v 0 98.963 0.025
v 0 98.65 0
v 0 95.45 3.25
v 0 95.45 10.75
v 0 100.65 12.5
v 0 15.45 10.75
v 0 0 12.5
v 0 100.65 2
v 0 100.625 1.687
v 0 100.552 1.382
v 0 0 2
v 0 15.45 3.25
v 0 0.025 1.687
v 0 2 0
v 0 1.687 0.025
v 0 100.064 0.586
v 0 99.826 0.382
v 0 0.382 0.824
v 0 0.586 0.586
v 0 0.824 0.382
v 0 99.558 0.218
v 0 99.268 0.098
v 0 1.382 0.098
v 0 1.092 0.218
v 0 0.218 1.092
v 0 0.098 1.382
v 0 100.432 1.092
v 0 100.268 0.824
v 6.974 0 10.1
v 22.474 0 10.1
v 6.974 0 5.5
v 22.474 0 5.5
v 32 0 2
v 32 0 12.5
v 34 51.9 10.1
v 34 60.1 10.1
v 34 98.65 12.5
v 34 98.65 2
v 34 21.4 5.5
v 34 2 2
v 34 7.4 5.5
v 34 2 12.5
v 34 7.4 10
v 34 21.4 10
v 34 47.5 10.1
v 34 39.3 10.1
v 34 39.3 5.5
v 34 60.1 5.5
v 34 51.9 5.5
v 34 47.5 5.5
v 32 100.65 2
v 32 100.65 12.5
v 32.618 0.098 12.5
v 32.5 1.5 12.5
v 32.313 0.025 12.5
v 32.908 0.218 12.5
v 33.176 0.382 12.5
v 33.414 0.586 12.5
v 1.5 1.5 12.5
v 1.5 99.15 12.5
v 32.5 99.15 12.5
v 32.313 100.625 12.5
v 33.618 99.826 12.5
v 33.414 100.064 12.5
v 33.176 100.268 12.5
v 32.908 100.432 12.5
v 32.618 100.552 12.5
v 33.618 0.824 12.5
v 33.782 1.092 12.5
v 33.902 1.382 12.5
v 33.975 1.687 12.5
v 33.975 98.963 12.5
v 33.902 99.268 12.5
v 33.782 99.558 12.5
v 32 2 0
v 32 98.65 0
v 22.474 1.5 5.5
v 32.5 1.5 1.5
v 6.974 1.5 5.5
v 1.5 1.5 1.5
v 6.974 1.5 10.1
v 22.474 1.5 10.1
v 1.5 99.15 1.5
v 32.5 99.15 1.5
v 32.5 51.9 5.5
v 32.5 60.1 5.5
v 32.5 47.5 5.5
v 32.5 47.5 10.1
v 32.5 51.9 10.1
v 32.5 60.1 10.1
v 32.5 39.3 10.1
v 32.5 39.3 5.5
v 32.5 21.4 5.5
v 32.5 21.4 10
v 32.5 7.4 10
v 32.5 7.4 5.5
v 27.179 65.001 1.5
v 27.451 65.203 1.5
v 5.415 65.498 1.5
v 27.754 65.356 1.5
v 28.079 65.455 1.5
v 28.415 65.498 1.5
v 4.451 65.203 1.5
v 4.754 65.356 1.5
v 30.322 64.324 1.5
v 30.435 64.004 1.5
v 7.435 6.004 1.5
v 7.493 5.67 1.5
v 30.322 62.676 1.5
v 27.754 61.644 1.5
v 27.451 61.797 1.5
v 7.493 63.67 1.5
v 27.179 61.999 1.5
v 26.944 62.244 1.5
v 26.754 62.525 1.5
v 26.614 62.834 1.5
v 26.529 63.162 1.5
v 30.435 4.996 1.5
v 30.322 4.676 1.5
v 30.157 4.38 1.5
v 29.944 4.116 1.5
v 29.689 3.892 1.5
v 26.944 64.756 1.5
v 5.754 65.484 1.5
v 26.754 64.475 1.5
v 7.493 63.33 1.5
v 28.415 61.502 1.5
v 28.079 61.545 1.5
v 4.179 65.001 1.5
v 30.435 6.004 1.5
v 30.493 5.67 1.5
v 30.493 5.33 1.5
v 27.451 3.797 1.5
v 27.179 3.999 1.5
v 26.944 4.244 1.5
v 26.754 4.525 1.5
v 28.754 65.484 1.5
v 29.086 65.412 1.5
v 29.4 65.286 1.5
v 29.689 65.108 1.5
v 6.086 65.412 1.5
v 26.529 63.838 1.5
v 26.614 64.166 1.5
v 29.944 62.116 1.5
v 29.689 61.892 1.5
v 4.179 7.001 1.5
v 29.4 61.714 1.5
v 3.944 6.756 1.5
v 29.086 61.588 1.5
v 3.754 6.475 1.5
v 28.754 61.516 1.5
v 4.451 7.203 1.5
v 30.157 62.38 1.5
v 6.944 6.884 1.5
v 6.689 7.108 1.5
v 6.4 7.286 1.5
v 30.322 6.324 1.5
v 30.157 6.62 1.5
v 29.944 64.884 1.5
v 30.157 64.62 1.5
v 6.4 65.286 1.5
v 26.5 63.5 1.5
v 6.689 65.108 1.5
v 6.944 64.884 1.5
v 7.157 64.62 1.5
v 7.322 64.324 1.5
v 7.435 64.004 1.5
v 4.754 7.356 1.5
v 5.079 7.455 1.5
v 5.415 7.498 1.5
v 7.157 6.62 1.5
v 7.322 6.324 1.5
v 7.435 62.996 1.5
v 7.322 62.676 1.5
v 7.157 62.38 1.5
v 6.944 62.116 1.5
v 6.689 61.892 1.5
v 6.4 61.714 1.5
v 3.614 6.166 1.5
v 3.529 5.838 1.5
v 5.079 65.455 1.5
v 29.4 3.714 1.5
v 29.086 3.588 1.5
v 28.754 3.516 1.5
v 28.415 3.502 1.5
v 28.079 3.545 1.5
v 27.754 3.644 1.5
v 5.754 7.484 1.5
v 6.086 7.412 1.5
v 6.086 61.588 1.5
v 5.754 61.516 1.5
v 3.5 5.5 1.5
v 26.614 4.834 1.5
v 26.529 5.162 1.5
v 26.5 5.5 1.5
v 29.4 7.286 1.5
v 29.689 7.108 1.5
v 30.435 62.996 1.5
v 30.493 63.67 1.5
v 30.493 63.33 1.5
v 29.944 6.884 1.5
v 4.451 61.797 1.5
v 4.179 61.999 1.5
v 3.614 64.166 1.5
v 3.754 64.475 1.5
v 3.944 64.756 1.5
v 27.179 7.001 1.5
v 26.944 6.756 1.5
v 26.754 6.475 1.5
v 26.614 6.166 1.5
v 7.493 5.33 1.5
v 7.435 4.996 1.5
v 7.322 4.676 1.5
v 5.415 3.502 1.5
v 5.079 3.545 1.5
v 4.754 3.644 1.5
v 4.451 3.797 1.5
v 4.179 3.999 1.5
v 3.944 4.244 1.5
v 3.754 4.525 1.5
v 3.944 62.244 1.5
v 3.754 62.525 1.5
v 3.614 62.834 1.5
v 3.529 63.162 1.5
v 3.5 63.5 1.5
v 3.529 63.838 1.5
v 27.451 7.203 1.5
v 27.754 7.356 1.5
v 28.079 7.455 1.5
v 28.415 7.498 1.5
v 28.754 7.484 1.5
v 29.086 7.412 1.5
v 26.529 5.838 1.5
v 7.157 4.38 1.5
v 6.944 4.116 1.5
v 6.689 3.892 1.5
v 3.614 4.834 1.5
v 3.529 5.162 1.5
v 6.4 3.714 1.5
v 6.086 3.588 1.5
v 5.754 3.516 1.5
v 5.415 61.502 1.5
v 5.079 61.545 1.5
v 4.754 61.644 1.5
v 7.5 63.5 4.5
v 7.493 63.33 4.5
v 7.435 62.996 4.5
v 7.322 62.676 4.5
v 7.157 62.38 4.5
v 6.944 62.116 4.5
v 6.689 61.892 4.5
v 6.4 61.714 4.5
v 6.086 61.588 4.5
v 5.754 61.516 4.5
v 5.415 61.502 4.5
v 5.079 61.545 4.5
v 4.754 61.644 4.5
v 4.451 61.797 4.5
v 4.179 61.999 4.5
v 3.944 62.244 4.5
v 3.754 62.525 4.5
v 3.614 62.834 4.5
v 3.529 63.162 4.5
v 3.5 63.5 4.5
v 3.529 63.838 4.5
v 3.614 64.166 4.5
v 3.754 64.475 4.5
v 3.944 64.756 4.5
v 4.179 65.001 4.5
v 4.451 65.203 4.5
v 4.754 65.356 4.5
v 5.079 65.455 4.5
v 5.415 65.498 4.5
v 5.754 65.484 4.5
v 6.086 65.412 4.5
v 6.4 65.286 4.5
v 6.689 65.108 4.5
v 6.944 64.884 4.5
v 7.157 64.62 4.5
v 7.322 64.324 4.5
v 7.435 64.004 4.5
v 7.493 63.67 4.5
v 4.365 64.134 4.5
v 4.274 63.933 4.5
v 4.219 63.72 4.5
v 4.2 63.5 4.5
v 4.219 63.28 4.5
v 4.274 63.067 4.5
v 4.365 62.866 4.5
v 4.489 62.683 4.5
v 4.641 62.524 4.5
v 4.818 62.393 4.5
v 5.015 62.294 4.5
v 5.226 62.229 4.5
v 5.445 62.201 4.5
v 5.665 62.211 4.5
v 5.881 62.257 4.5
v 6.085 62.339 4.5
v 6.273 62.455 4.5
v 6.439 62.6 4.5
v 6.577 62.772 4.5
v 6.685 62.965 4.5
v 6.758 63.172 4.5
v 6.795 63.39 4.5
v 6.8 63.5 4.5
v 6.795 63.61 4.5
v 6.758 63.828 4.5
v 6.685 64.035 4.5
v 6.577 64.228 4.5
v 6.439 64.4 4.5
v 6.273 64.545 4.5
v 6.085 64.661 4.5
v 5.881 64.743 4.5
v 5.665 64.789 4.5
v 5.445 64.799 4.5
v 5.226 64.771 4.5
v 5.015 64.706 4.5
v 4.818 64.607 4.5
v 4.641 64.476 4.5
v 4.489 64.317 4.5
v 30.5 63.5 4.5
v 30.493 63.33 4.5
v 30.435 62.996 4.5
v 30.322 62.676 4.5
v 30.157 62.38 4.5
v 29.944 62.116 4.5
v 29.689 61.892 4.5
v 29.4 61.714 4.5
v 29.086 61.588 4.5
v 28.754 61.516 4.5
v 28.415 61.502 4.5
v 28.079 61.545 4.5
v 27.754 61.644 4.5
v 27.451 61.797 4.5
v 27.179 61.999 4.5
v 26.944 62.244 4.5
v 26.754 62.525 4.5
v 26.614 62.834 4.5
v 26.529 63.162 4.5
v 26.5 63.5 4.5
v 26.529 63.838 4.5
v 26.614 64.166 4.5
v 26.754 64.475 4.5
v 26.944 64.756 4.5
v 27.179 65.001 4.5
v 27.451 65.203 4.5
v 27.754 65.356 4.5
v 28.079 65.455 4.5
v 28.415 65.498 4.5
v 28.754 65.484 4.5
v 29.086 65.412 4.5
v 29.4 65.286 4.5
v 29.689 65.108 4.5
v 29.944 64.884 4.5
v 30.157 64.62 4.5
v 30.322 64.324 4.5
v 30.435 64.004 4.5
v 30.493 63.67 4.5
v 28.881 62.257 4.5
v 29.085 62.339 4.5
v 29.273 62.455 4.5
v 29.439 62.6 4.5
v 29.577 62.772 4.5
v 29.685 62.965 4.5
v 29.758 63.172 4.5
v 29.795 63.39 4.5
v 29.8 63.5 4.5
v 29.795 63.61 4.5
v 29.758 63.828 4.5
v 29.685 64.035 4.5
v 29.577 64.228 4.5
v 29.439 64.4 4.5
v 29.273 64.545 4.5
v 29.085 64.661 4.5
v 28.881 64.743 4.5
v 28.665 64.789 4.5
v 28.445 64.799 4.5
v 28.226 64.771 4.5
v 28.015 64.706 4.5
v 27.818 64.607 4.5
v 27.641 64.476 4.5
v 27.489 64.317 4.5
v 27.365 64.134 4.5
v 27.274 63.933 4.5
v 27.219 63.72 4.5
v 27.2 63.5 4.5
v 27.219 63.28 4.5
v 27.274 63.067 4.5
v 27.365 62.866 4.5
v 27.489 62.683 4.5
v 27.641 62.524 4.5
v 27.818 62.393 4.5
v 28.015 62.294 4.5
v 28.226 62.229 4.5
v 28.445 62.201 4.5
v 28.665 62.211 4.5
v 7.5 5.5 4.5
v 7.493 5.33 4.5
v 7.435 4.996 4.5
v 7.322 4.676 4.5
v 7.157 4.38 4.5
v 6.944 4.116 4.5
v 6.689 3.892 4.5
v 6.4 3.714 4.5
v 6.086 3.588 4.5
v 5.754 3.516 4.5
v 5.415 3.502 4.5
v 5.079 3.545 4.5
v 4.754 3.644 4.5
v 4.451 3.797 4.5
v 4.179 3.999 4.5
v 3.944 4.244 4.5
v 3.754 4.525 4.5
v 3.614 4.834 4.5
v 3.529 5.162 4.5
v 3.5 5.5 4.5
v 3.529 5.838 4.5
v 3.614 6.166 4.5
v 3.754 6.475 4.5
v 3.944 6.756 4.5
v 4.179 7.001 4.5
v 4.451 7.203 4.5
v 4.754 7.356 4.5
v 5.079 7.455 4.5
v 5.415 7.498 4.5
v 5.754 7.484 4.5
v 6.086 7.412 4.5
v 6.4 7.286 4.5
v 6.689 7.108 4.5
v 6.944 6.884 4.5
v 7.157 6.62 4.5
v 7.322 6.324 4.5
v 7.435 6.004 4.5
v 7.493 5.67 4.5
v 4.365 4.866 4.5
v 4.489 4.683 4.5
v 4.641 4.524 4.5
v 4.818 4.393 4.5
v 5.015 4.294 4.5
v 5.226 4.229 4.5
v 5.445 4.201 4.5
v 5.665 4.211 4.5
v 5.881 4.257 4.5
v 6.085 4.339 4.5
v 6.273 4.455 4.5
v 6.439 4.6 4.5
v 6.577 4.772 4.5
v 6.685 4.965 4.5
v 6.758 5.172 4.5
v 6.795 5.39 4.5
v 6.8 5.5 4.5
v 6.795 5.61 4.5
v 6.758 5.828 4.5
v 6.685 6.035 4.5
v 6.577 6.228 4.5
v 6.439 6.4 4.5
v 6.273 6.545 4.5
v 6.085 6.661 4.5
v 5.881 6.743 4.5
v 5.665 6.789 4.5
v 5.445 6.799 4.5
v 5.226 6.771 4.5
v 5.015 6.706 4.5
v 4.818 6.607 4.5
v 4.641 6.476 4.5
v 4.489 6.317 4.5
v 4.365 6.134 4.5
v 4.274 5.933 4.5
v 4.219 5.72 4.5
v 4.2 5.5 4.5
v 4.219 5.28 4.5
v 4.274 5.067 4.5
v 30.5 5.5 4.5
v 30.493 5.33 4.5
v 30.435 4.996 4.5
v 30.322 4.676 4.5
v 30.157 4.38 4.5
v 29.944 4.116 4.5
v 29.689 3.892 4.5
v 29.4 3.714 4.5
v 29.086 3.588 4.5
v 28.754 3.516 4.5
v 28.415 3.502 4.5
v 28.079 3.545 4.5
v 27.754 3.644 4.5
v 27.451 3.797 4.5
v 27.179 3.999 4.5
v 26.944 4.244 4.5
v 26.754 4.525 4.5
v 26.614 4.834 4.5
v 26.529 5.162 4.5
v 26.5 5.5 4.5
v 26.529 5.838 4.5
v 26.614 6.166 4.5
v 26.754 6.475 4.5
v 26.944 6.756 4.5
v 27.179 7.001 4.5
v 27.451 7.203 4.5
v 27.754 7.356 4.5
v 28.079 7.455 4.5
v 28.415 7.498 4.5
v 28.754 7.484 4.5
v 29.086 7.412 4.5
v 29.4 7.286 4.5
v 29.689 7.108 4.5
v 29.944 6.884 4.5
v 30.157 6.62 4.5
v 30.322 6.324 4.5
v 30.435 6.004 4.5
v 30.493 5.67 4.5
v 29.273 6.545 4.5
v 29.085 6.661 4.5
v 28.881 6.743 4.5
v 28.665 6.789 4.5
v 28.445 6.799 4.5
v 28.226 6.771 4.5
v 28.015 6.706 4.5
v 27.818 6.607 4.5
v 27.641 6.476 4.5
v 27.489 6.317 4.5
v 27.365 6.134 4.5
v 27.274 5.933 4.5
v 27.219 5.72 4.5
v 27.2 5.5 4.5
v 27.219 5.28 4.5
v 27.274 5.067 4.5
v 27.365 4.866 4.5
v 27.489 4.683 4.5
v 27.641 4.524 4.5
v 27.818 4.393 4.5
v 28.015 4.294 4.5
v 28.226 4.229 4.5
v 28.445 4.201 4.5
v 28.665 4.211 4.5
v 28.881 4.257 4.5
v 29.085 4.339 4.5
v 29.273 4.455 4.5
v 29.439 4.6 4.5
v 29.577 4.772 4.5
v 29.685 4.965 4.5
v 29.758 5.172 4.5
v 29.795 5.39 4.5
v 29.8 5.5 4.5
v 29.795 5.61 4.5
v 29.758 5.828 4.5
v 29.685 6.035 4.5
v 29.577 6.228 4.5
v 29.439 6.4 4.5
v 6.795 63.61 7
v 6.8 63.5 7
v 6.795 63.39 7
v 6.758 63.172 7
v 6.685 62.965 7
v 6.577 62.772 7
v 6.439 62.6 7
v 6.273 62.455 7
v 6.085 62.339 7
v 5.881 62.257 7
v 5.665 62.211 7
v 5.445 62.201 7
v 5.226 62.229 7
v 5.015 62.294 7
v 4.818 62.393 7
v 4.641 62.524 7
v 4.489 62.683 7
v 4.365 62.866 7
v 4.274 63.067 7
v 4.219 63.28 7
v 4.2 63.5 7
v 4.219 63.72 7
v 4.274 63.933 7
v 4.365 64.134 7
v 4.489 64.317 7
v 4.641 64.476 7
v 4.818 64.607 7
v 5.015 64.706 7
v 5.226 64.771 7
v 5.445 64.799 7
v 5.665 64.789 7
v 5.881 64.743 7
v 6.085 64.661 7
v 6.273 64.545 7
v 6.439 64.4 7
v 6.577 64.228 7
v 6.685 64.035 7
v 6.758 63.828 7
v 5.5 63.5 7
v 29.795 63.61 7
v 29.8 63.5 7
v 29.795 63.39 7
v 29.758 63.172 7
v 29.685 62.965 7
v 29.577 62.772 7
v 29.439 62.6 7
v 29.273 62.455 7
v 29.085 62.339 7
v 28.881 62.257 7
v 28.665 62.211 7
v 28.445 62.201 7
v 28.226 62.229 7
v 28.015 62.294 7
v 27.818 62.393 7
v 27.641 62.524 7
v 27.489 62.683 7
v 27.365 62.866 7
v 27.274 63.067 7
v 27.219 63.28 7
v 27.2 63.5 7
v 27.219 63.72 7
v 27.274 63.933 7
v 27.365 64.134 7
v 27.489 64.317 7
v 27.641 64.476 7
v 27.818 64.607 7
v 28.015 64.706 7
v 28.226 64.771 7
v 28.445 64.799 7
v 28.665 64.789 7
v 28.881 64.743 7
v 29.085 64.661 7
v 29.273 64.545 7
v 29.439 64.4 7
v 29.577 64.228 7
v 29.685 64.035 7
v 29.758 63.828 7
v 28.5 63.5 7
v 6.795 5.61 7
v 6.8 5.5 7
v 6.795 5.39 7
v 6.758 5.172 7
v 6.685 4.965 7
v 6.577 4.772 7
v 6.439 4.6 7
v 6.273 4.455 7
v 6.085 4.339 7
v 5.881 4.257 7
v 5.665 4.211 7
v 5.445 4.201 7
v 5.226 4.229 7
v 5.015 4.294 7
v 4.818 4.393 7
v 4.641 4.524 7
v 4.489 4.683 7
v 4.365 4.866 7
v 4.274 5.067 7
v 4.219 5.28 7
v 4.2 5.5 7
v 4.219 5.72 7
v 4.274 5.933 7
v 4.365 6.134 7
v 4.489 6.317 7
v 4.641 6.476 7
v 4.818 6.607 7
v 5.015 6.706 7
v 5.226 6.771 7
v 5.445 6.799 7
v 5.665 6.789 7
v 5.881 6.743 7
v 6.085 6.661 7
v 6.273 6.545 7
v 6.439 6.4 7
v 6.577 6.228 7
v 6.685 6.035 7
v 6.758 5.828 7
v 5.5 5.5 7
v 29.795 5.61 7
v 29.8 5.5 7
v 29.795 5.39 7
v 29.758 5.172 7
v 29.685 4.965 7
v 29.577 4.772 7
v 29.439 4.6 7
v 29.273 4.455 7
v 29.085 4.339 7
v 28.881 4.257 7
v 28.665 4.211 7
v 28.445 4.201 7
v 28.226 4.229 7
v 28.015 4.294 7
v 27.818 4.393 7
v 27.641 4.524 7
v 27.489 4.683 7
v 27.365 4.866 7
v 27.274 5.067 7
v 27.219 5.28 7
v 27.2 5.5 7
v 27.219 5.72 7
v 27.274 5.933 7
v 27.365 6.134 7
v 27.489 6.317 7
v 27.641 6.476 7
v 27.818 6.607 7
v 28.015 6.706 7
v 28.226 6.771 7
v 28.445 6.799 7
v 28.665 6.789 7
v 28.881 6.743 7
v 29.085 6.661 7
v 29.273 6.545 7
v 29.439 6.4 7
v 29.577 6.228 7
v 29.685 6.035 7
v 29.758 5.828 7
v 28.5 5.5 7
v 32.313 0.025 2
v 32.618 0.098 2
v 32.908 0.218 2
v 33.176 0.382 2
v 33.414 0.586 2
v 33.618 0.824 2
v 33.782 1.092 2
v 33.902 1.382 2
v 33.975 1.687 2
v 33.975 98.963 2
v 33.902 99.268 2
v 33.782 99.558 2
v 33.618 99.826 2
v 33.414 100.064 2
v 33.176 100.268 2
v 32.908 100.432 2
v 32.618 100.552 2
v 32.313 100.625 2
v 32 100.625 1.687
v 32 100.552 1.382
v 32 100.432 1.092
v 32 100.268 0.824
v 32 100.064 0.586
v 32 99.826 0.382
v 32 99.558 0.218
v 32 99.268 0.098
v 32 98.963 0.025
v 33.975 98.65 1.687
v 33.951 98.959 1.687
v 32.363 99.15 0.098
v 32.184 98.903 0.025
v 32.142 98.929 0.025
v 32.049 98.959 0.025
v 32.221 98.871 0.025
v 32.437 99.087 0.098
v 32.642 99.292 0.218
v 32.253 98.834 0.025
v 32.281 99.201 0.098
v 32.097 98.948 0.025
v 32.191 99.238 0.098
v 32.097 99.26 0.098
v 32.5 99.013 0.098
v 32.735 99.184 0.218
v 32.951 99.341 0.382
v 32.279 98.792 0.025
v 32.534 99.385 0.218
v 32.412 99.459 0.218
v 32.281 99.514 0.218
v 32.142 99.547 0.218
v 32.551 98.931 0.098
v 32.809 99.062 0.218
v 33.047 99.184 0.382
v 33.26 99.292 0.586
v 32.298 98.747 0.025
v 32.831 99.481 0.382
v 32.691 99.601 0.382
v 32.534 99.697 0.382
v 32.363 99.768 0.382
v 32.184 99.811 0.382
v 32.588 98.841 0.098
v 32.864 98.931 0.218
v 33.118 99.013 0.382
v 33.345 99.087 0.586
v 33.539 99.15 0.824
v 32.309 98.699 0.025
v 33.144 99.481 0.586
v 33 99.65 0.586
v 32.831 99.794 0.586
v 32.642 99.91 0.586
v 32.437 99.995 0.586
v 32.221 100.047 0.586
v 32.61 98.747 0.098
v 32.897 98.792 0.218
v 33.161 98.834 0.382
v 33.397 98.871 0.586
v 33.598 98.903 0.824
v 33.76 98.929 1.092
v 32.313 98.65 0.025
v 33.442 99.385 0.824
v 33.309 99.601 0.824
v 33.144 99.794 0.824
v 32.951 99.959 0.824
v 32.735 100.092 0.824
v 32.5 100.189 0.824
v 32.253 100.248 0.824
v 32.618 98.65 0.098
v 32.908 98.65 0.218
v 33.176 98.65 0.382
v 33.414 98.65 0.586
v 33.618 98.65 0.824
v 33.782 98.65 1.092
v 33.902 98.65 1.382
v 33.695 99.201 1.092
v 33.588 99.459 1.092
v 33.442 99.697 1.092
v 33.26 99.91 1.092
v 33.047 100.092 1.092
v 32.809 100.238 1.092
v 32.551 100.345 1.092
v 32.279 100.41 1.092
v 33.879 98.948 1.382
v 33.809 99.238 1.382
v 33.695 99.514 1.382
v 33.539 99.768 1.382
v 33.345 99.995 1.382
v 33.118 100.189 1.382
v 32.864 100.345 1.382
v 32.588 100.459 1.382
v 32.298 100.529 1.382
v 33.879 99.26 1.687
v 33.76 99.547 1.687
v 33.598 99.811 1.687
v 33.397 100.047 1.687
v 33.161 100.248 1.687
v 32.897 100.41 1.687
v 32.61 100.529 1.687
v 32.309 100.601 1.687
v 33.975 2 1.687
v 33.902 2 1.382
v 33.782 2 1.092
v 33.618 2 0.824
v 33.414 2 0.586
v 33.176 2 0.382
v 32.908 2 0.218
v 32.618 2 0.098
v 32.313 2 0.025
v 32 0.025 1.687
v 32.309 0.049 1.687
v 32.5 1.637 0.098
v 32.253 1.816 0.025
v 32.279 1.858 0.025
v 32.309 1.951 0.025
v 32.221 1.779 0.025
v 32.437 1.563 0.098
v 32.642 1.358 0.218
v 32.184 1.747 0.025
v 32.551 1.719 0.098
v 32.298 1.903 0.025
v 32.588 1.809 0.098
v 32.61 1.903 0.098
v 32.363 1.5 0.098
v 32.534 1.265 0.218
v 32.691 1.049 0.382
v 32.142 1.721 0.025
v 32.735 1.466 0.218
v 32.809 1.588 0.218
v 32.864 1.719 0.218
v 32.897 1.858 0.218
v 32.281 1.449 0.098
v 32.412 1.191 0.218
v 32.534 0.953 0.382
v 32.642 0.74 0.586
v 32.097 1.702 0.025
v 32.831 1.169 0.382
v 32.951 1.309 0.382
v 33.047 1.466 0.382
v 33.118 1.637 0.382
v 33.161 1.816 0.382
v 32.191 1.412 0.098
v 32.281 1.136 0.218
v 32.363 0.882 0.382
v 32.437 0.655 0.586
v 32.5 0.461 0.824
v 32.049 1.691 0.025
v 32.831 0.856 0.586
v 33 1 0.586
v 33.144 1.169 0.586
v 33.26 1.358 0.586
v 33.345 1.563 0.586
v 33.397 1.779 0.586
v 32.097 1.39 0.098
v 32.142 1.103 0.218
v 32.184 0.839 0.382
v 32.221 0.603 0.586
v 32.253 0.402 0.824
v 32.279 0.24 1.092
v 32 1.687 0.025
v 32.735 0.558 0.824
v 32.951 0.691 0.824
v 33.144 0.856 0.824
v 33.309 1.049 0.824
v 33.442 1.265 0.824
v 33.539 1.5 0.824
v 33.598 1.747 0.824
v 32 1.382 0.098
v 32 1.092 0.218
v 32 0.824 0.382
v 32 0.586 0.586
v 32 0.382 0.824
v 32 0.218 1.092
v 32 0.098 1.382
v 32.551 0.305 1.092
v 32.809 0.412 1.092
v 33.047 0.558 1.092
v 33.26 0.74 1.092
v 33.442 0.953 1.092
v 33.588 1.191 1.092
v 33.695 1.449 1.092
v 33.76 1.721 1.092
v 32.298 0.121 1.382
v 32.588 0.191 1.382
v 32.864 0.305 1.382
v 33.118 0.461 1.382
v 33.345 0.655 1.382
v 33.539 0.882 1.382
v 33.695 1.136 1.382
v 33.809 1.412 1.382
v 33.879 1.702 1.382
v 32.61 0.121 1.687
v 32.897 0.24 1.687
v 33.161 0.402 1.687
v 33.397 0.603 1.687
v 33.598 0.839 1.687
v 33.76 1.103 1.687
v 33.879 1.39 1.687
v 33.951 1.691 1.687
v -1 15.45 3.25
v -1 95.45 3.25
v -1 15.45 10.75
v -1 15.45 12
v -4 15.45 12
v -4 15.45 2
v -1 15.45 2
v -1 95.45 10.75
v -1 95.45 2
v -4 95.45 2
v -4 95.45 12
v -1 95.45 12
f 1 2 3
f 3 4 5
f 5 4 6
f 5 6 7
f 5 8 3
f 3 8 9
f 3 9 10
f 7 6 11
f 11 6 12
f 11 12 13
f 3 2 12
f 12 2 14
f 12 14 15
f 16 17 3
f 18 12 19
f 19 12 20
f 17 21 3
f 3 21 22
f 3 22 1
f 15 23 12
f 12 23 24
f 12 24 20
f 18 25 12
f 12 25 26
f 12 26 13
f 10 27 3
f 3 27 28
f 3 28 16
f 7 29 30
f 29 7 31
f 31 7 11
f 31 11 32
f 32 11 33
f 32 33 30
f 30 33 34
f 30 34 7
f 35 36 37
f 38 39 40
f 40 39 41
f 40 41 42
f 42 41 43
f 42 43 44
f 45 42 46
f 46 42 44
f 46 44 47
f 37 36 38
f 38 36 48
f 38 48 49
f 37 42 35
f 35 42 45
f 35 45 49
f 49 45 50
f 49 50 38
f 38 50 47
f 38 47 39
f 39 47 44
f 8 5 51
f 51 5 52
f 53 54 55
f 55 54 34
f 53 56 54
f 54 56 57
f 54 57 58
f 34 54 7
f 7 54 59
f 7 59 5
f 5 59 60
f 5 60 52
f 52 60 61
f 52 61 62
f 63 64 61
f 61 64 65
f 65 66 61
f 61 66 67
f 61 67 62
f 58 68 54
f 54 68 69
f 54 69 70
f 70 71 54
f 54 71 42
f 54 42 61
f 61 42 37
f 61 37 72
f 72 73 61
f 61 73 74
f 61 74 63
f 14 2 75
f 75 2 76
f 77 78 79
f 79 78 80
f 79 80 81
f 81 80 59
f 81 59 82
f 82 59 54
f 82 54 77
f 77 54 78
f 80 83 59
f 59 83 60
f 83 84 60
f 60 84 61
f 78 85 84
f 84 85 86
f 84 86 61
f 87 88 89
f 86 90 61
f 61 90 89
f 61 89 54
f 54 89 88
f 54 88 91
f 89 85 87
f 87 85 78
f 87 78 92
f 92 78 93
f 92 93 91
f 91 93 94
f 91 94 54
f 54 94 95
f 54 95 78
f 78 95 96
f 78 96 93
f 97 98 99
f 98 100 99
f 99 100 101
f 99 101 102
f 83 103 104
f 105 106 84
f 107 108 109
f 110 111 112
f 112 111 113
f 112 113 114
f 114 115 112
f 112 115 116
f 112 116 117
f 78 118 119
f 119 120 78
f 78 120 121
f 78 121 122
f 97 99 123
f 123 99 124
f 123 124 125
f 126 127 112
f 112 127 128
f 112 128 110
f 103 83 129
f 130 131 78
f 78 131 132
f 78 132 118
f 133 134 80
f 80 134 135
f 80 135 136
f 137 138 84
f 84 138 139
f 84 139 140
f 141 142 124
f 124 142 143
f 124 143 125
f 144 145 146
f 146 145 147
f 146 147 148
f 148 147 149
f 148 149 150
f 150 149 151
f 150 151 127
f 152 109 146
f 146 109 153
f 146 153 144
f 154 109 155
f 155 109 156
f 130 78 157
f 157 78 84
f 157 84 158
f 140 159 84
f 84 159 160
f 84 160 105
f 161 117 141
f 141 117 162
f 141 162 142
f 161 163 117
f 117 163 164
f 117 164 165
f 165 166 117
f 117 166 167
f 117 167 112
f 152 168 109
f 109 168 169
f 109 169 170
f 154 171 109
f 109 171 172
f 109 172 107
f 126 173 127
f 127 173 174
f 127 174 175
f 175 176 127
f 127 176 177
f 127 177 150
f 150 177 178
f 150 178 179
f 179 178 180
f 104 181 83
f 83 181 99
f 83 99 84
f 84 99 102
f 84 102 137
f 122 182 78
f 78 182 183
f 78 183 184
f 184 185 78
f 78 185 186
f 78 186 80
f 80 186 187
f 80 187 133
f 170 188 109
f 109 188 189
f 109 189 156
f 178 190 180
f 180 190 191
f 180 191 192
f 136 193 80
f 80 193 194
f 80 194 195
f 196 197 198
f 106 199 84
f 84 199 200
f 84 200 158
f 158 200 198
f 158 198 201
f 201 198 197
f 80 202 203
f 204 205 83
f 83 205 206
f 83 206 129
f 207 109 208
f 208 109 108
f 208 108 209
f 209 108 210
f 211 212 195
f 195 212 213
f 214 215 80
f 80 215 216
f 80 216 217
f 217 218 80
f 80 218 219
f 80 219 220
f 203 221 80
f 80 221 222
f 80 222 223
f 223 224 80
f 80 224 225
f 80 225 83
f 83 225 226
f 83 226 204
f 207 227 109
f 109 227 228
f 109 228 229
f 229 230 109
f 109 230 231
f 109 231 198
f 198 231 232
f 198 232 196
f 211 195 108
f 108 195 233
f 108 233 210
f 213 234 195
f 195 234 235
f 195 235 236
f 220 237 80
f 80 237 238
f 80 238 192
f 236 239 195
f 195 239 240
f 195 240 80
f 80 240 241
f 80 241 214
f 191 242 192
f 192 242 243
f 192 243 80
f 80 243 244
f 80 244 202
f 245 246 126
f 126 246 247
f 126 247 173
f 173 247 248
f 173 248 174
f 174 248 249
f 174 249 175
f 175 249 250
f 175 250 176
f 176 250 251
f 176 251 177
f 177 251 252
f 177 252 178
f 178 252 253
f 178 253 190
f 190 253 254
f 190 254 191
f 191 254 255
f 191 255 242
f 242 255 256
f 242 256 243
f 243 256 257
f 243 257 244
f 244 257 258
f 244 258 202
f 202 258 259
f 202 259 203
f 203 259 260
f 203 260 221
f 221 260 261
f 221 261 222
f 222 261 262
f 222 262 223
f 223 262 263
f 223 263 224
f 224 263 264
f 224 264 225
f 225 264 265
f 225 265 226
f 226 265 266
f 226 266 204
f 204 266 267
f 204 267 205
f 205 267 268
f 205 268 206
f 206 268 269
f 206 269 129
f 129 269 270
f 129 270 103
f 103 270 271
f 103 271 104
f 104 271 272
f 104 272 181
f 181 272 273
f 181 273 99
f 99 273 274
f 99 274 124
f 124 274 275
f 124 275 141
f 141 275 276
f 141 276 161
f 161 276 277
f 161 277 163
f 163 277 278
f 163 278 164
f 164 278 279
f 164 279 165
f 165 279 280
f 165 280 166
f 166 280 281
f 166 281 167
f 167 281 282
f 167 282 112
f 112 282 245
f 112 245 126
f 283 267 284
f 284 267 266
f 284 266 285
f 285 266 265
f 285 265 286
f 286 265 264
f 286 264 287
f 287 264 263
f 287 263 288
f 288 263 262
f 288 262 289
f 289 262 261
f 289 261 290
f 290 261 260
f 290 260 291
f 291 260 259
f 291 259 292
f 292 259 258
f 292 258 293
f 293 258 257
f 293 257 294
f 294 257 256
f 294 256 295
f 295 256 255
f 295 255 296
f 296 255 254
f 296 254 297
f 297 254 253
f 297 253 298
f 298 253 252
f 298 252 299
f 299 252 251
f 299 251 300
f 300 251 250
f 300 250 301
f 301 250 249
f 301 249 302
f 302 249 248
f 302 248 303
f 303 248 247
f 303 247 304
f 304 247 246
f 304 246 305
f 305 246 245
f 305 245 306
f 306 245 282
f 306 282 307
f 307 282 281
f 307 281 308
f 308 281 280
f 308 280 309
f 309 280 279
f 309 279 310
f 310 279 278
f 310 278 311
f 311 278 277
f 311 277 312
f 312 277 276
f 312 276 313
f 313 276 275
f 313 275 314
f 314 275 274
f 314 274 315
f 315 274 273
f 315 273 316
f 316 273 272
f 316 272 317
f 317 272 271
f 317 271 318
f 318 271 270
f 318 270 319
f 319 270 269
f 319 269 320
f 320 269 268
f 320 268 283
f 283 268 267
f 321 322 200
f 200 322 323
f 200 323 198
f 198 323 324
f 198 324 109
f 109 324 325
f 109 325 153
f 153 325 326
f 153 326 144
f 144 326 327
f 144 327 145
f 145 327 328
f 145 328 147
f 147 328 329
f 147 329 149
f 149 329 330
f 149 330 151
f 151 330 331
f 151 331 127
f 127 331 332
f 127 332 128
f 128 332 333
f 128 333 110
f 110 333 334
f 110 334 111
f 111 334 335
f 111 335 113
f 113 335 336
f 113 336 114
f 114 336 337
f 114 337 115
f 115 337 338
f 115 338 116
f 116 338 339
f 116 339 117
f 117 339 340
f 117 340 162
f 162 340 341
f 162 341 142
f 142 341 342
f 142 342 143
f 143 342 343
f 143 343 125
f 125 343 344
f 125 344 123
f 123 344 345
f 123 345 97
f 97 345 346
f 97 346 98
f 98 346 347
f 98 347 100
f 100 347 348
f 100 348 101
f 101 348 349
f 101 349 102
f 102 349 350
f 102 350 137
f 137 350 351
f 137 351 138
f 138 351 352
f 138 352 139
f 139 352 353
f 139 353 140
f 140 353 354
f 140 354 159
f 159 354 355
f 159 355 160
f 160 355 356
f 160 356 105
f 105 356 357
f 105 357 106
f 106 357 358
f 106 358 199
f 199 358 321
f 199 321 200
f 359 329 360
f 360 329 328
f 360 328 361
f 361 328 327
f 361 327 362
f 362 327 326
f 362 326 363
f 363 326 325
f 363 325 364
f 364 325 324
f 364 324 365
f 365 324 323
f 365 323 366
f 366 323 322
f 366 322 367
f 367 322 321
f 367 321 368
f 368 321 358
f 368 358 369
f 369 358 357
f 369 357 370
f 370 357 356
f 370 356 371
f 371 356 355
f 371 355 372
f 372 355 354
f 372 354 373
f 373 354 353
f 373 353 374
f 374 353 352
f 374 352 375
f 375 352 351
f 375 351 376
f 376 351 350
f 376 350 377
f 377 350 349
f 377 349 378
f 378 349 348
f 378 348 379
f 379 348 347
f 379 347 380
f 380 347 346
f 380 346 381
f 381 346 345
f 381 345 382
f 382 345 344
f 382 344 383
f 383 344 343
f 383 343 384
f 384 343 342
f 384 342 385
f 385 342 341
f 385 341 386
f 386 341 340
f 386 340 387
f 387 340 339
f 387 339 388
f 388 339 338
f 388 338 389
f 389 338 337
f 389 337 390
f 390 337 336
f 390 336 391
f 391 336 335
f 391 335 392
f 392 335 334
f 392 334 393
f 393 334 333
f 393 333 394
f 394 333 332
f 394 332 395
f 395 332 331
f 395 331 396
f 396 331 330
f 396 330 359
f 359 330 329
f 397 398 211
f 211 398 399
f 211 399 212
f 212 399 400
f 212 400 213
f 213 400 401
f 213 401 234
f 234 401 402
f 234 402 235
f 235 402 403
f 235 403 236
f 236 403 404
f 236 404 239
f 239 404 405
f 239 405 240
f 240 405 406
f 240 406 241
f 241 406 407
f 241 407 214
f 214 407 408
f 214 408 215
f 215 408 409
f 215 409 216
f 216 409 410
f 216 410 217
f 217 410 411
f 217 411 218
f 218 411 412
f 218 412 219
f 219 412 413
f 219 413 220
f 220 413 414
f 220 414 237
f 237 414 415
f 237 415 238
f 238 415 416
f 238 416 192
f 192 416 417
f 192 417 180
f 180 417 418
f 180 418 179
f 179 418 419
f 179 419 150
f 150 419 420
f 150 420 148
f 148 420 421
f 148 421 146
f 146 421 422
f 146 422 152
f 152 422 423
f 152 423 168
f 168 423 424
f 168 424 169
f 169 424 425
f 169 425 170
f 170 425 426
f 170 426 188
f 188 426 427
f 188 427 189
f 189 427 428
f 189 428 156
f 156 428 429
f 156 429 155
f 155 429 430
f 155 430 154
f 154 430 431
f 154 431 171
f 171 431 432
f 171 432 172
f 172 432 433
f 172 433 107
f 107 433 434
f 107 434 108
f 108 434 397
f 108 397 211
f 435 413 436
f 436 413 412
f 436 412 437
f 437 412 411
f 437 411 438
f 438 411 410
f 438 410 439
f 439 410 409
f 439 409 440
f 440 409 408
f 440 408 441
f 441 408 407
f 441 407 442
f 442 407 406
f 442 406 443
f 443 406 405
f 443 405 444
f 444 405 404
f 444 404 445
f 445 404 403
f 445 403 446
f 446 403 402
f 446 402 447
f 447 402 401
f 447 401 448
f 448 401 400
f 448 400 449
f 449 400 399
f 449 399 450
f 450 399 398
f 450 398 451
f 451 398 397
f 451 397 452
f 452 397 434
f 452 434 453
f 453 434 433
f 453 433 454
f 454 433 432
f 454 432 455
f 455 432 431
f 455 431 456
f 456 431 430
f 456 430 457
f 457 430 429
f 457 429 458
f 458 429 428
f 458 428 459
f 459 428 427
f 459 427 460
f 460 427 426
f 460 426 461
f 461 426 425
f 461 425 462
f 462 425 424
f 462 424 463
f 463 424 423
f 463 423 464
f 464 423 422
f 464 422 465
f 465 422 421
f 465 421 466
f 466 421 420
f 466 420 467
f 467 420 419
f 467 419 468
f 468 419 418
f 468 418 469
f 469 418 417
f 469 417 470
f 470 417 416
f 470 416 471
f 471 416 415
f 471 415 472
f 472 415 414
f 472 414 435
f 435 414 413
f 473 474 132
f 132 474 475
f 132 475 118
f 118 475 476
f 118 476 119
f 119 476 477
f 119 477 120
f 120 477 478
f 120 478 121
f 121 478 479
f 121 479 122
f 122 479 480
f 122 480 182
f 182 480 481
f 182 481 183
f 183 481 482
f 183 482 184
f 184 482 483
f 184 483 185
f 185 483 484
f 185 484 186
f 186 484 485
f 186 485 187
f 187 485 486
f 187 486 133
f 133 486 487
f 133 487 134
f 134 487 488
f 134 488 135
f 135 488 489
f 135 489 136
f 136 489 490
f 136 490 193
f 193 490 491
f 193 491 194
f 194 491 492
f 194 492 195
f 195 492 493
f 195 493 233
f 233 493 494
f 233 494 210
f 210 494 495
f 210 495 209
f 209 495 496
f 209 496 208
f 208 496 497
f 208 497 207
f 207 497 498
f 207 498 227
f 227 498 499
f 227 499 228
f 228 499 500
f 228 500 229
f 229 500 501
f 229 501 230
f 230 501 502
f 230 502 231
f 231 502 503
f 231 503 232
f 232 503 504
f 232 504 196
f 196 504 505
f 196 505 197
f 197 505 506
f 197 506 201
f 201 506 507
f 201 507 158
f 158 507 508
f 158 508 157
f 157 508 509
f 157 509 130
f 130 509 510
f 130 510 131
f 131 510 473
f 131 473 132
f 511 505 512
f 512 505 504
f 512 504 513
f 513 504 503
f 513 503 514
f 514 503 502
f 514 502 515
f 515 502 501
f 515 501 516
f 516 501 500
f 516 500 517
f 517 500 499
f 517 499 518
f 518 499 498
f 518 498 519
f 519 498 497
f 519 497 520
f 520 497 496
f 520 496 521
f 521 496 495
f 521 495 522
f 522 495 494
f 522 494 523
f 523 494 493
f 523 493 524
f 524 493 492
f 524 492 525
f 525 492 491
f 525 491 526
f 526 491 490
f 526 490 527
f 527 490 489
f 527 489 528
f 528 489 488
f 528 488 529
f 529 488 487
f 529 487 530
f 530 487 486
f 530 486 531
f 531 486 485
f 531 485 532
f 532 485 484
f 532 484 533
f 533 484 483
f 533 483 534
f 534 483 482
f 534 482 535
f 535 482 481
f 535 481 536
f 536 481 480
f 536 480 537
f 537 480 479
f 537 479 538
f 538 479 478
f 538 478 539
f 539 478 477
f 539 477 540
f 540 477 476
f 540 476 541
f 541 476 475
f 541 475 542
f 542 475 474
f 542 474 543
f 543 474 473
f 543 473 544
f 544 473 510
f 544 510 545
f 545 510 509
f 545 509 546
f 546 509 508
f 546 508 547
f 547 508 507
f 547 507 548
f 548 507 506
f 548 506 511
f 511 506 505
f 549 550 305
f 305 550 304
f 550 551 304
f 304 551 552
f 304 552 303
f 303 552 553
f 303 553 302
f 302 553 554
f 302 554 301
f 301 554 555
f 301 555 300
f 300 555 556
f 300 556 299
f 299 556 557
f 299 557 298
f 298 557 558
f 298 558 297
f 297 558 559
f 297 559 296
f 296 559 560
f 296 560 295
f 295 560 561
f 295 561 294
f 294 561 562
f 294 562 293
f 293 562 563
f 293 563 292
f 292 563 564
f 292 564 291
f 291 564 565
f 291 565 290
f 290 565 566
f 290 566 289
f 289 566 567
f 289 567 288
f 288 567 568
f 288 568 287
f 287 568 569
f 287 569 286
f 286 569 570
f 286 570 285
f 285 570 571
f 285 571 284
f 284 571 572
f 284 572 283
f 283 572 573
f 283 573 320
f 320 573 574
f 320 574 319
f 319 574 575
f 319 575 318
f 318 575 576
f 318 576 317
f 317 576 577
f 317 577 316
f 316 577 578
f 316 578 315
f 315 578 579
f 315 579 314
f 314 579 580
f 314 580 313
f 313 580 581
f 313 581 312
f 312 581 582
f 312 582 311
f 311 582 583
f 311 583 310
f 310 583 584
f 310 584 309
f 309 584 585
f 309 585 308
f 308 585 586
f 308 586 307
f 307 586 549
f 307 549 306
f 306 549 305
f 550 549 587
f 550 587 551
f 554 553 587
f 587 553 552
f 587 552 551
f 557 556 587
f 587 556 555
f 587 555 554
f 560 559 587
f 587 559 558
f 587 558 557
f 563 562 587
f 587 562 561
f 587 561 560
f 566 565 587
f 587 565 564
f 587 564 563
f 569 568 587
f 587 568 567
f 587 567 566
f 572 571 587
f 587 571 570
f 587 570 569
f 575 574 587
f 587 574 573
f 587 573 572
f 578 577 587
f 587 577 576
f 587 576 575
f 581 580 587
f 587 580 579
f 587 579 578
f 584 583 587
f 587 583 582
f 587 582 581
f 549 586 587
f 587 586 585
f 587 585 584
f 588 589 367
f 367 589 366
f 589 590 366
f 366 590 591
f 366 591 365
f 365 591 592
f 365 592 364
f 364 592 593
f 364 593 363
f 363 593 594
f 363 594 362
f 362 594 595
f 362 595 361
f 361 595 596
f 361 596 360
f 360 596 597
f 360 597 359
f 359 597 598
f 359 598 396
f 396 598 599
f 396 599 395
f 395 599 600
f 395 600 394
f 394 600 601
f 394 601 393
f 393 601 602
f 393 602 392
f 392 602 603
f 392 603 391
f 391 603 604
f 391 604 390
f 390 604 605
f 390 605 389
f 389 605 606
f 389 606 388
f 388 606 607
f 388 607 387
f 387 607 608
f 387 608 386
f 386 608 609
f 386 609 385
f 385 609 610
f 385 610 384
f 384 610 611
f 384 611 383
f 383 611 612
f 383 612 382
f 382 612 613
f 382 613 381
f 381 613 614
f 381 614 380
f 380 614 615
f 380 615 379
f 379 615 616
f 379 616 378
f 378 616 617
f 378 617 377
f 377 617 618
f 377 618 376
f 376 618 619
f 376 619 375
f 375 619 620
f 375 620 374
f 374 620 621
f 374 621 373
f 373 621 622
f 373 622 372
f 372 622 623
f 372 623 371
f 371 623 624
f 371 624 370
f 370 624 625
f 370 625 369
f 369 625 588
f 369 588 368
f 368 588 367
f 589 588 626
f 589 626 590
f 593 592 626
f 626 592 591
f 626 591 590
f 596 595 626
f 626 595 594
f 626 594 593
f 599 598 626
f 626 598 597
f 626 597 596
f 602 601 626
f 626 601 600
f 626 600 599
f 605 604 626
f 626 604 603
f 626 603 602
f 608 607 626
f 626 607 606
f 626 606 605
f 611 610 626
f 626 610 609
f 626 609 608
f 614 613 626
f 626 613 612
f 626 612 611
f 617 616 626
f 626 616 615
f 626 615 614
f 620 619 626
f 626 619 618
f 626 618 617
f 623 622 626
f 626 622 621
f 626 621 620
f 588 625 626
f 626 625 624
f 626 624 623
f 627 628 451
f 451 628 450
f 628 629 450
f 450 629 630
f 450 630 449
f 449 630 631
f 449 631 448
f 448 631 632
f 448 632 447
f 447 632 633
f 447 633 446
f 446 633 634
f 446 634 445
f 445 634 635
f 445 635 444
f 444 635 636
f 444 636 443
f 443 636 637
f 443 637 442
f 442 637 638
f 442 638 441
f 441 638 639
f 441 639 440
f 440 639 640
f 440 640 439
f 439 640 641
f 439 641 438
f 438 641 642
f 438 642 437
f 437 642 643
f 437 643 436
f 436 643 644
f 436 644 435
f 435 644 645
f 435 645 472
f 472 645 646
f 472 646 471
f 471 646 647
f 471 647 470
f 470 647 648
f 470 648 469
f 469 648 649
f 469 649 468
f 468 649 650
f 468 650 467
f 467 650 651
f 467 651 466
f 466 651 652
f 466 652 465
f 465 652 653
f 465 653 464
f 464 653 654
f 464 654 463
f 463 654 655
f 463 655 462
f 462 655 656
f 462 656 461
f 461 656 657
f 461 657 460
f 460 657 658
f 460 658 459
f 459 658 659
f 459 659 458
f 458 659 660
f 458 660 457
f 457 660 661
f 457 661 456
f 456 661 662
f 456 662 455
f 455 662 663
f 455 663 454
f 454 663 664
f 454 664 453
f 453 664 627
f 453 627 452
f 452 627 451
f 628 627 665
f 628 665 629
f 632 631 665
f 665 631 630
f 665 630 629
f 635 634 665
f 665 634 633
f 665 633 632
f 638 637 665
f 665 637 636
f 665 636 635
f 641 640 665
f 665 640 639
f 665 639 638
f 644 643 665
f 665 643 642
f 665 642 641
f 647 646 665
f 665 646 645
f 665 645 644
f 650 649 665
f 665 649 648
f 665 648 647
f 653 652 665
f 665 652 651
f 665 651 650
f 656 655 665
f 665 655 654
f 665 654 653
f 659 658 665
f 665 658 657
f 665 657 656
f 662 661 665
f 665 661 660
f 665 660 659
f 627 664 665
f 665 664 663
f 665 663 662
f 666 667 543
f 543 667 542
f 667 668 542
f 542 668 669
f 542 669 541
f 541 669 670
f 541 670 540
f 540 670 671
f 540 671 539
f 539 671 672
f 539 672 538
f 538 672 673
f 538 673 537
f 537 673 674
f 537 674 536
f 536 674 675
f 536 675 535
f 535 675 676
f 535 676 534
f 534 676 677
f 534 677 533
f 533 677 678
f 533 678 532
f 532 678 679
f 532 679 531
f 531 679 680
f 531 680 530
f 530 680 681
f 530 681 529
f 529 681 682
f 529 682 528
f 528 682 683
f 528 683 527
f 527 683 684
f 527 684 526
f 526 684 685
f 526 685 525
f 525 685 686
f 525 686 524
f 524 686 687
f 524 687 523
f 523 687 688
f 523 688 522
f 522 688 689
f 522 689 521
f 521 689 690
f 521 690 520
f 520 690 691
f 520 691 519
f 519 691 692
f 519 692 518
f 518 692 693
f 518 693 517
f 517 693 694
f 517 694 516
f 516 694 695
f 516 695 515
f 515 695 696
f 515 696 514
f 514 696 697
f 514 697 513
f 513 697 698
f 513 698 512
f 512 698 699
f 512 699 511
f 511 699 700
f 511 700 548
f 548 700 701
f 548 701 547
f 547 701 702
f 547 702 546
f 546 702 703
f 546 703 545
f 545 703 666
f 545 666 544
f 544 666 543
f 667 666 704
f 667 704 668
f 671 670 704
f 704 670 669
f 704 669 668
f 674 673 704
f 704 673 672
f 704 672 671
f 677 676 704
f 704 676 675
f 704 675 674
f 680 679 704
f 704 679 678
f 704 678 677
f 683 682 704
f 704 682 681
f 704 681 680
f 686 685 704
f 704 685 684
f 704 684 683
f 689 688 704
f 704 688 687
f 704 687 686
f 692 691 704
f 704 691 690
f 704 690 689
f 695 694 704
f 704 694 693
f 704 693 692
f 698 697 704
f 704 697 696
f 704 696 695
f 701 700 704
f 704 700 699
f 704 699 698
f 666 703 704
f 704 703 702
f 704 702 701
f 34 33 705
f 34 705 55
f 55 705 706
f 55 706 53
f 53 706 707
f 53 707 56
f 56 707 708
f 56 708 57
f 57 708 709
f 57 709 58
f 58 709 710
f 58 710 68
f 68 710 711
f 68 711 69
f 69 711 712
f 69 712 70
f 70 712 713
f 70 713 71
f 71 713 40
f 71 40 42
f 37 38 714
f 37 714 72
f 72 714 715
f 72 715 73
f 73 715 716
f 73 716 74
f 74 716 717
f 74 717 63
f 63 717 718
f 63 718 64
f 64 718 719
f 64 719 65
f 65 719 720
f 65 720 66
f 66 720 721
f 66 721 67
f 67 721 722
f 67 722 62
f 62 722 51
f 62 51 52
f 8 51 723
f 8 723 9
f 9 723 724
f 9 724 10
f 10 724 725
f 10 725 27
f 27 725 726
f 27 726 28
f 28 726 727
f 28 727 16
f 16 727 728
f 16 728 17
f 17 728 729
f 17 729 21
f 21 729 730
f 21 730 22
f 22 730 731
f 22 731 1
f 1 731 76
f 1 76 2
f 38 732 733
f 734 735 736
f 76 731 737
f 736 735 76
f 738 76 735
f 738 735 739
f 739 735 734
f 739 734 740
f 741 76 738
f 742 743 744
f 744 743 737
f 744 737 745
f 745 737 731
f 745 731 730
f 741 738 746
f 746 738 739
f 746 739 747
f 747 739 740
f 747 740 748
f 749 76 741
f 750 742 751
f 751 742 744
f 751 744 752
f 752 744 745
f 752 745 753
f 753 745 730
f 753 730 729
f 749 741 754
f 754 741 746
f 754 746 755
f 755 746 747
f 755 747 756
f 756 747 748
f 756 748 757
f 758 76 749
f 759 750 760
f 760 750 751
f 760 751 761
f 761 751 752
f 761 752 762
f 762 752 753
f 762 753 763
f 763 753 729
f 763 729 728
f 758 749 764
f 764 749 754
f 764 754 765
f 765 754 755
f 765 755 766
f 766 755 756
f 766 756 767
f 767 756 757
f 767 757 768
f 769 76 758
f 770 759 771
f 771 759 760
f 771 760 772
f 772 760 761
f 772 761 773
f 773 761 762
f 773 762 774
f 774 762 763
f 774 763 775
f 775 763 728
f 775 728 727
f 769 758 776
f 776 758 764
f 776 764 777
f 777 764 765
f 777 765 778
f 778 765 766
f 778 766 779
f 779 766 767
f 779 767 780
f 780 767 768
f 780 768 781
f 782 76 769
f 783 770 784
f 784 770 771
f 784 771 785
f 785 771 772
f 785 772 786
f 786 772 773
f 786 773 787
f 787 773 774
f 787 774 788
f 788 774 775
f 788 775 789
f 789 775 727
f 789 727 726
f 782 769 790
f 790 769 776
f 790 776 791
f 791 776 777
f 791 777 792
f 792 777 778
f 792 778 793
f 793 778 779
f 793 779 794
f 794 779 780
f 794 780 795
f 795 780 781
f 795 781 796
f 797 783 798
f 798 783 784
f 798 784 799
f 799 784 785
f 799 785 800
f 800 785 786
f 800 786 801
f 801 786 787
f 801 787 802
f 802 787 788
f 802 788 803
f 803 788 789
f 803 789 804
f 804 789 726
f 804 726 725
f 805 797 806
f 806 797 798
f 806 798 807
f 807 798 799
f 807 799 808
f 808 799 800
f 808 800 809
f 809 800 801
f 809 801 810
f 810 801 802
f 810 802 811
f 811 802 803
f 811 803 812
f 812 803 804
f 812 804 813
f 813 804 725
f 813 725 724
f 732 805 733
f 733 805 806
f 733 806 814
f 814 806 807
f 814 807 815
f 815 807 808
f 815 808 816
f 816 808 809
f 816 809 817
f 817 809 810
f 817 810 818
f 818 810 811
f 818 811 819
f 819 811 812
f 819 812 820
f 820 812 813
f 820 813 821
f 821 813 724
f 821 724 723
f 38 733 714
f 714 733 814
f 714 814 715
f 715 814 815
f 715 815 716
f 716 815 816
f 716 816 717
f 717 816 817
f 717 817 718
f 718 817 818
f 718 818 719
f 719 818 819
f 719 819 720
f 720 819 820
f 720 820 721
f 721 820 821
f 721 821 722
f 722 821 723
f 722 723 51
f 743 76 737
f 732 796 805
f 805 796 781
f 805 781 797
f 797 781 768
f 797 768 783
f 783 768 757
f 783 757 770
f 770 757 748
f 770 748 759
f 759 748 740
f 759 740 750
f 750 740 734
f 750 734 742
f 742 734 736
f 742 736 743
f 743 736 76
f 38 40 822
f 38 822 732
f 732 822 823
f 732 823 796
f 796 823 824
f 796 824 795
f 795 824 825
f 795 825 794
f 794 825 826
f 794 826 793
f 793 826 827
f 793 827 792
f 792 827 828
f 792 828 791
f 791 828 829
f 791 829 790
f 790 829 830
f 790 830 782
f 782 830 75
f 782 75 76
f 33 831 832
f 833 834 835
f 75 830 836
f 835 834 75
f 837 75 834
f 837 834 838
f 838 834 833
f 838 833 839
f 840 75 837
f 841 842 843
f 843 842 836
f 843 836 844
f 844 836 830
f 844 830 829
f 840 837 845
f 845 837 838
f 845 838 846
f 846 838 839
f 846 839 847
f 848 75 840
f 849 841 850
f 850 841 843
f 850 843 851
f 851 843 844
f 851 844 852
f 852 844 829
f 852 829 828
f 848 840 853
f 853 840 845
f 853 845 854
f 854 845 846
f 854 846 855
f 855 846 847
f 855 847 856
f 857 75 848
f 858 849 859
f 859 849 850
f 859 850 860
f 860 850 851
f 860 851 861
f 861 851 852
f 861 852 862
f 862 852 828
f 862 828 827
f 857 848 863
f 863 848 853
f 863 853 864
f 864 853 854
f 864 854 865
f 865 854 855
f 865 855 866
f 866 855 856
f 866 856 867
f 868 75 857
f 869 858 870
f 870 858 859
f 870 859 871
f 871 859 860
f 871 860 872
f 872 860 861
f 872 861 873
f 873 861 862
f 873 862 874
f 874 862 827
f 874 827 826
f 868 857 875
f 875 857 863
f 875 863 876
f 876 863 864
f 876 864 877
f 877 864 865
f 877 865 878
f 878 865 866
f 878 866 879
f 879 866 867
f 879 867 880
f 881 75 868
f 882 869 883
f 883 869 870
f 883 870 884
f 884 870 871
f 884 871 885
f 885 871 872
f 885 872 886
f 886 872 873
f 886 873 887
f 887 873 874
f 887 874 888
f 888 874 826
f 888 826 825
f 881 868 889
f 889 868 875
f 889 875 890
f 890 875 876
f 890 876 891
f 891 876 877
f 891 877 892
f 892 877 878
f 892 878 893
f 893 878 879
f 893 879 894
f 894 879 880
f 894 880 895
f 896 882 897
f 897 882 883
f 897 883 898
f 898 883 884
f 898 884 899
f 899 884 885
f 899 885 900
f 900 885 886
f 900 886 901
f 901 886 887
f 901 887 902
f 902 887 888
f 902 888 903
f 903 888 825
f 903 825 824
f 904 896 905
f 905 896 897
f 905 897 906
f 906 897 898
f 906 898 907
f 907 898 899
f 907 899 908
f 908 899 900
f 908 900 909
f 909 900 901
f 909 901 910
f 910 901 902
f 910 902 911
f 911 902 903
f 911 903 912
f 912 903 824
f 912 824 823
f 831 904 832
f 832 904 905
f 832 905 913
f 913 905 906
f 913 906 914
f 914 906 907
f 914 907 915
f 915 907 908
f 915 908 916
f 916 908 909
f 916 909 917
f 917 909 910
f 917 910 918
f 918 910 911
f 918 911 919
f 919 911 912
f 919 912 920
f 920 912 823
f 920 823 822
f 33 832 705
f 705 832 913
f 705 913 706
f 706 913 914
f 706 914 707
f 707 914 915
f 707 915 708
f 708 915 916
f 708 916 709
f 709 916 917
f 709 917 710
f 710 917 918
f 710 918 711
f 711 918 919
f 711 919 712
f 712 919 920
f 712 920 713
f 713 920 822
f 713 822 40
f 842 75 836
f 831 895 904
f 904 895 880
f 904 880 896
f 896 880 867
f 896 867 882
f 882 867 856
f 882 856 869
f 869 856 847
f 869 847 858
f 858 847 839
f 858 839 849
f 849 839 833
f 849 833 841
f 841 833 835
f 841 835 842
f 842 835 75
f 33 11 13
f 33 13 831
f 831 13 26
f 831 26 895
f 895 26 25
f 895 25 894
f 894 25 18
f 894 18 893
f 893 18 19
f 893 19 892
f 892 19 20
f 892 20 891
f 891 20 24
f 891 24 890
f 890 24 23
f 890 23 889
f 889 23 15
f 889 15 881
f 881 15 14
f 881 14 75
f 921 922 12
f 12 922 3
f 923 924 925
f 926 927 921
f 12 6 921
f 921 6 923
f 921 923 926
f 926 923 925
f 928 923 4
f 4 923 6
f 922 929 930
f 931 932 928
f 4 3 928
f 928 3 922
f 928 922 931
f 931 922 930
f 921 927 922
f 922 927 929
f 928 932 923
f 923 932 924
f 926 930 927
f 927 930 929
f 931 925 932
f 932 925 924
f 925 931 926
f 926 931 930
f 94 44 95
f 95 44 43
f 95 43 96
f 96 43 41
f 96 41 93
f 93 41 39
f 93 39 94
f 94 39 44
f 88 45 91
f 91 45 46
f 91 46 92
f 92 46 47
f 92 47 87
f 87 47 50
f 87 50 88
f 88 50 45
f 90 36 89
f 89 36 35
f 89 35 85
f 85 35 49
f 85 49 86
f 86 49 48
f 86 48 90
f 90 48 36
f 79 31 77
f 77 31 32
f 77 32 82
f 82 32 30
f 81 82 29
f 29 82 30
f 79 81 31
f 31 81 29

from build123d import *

# Parameters (mm, degrees)
ESQUISSE1_W             = 34
ESQUISSE1_H             = 100.65
BOSS_EXTRU_1_DEPTH      = 12.5
ESQUISSE2_W             = 31
ESQUISSE2_H             = 97.65
ENL_V_MAT_EXTRU_1_DEPTH = 11
ESQUISSE5_R             = 2
BOSS_EXTRU_4_DEPTH      = 3
ESQUISSE6_R             = 1.3
BOSS_EXTRU_5_DEPTH      = 5.5
CONG_2_R                = 2
CONG_3_R                = 2
CONG_4_R                = 2
ESQUISSE7_W             = 7.5
ESQUISSE7_H             = 80
BOSS_EXTRU_6_DEPTH      = 1
ESQUISSE9_W             = 10
ESQUISSE9_H             = 80
BOSS_EXTRU_7_DEPTH      = 3
ESQUISSE10_W            = 4.6
ESQUISSE10_H            = 8.2
ESQUISSE10_W_2          = 4.5
ESQUISSE10_H_2          = 14
ENL_V_MAT_EXTRU_2_DEPTH = 3
ESQUISSE11_W            = 15.5
ESQUISSE11_H            = 4.6
ENL_V_MAT_EXTRU_3_DEPTH = 3


with BuildPart() as part:
    # Esquisse1 → Boss.-Extru.1 (new body)
    with BuildSketch(Plane.XY):
        with Locations((17, 50.325)):
            Rectangle(ESQUISSE1_W, ESQUISSE1_H)
    extrude(amount=BOSS_EXTRU_1_DEPTH)

    # Esquisse2 → Enlèv. mat.-Extru.1 (cut)
    with BuildSketch(Plane.XY.offset(12.5)):
        with Locations((17, 50.325)):
            Rectangle(ESQUISSE2_W, ESQUISSE2_H)
    extrude(amount=-ENL_V_MAT_EXTRU_1_DEPTH, mode=Mode.SUBTRACT)

    # Esquisse5 → Boss.-Extru.4 (add)
    with BuildSketch(Plane.XY.offset(1.5)):
        with Locations((5.5, 63.5)):
            Circle(ESQUISSE5_R)
        with Locations((28.5, 63.5)):
            Circle(ESQUISSE5_R)
        with Locations((5.5, 5.5)):
            Circle(ESQUISSE5_R)
        with Locations((28.5, 5.5)):
            Circle(ESQUISSE5_R)
    extrude(amount=BOSS_EXTRU_4_DEPTH)

    # Esquisse6 → Boss.-Extru.5 (add)
    with BuildSketch(Plane.XY.offset(1.5)):
        with Locations((5.5, 63.5)):
            Circle(ESQUISSE6_R)
        with Locations((28.5, 63.5)):
            Circle(ESQUISSE6_R)
        with Locations((5.5, 5.5)):
            Circle(ESQUISSE6_R)
        with Locations((28.5, 5.5)):
            Circle(ESQUISSE6_R)
    extrude(amount=BOSS_EXTRU_5_DEPTH)

    # Congé2
    cong_2_edges = [part.edges().sort_by_distance(p)[0] for p in [
        (34, 0, 6.25),
    ]]
    fillet(cong_2_edges, radius=CONG_2_R)

    # Congé3
    cong_3_edges = [part.edges().sort_by_distance(p)[0] for p in [
        (34, 100.65, 6.25),
    ]]
    fillet(cong_3_edges, radius=CONG_3_R)

    # Congé4
    cong_4_edges = [part.edges().sort_by_distance(p)[0] for p in [
        (16, 0, 0),
        (34, 50.325, 0),
        (33.414213562, 0.585786438, 0),
        (16, 100.65, 0),
        (33.414213562, 100.064213562, 0),
    ]]
    fillet(cong_4_edges, radius=CONG_4_R)

    # Esquisse7 → Boss.-Extru.6 (add)
    with BuildSketch(Plane.ZY):
        with Locations((7, 55.45)):
            Rectangle(ESQUISSE7_W, ESQUISSE7_H)
    extrude(amount=BOSS_EXTRU_6_DEPTH)

    # Esquisse9 → Boss.-Extru.7 (add)
    with BuildSketch(Plane.ZY.offset(1)):
        with Locations((7, 55.45)):
            Rectangle(ESQUISSE9_W, ESQUISSE9_H)
    extrude(amount=BOSS_EXTRU_7_DEPTH)

    # Esquisse10 → Enlèv. mat.-Extru.2 (cut)
    with BuildSketch(Plane.ZY.offset(-32.5)):
        with Locations((7.8, 56)):
            Rectangle(ESQUISSE10_W, ESQUISSE10_H)
        with Locations((7.8, 43.4)):
            Rectangle(ESQUISSE10_W, ESQUISSE10_H)
        with Locations((7.75, 14.4)):
            Rectangle(ESQUISSE10_W_2, ESQUISSE10_H_2)
    extrude(amount=-ENL_V_MAT_EXTRU_2_DEPTH, mode=Mode.SUBTRACT)

    # Esquisse11 → Enlèv. mat.-Extru.3 (cut)
    with BuildSketch(Plane(origin=(0, 1.5, 0), x_dir=(1, 0, 0), z_dir=(0, 1, 0))):
        with Locations((14.724178104, -7.8)):
            Rectangle(ESQUISSE11_W, ESQUISSE11_H)
    extrude(amount=-ENL_V_MAT_EXTRU_3_DEPTH, mode=Mode.SUBTRACT)


solid = part.part
